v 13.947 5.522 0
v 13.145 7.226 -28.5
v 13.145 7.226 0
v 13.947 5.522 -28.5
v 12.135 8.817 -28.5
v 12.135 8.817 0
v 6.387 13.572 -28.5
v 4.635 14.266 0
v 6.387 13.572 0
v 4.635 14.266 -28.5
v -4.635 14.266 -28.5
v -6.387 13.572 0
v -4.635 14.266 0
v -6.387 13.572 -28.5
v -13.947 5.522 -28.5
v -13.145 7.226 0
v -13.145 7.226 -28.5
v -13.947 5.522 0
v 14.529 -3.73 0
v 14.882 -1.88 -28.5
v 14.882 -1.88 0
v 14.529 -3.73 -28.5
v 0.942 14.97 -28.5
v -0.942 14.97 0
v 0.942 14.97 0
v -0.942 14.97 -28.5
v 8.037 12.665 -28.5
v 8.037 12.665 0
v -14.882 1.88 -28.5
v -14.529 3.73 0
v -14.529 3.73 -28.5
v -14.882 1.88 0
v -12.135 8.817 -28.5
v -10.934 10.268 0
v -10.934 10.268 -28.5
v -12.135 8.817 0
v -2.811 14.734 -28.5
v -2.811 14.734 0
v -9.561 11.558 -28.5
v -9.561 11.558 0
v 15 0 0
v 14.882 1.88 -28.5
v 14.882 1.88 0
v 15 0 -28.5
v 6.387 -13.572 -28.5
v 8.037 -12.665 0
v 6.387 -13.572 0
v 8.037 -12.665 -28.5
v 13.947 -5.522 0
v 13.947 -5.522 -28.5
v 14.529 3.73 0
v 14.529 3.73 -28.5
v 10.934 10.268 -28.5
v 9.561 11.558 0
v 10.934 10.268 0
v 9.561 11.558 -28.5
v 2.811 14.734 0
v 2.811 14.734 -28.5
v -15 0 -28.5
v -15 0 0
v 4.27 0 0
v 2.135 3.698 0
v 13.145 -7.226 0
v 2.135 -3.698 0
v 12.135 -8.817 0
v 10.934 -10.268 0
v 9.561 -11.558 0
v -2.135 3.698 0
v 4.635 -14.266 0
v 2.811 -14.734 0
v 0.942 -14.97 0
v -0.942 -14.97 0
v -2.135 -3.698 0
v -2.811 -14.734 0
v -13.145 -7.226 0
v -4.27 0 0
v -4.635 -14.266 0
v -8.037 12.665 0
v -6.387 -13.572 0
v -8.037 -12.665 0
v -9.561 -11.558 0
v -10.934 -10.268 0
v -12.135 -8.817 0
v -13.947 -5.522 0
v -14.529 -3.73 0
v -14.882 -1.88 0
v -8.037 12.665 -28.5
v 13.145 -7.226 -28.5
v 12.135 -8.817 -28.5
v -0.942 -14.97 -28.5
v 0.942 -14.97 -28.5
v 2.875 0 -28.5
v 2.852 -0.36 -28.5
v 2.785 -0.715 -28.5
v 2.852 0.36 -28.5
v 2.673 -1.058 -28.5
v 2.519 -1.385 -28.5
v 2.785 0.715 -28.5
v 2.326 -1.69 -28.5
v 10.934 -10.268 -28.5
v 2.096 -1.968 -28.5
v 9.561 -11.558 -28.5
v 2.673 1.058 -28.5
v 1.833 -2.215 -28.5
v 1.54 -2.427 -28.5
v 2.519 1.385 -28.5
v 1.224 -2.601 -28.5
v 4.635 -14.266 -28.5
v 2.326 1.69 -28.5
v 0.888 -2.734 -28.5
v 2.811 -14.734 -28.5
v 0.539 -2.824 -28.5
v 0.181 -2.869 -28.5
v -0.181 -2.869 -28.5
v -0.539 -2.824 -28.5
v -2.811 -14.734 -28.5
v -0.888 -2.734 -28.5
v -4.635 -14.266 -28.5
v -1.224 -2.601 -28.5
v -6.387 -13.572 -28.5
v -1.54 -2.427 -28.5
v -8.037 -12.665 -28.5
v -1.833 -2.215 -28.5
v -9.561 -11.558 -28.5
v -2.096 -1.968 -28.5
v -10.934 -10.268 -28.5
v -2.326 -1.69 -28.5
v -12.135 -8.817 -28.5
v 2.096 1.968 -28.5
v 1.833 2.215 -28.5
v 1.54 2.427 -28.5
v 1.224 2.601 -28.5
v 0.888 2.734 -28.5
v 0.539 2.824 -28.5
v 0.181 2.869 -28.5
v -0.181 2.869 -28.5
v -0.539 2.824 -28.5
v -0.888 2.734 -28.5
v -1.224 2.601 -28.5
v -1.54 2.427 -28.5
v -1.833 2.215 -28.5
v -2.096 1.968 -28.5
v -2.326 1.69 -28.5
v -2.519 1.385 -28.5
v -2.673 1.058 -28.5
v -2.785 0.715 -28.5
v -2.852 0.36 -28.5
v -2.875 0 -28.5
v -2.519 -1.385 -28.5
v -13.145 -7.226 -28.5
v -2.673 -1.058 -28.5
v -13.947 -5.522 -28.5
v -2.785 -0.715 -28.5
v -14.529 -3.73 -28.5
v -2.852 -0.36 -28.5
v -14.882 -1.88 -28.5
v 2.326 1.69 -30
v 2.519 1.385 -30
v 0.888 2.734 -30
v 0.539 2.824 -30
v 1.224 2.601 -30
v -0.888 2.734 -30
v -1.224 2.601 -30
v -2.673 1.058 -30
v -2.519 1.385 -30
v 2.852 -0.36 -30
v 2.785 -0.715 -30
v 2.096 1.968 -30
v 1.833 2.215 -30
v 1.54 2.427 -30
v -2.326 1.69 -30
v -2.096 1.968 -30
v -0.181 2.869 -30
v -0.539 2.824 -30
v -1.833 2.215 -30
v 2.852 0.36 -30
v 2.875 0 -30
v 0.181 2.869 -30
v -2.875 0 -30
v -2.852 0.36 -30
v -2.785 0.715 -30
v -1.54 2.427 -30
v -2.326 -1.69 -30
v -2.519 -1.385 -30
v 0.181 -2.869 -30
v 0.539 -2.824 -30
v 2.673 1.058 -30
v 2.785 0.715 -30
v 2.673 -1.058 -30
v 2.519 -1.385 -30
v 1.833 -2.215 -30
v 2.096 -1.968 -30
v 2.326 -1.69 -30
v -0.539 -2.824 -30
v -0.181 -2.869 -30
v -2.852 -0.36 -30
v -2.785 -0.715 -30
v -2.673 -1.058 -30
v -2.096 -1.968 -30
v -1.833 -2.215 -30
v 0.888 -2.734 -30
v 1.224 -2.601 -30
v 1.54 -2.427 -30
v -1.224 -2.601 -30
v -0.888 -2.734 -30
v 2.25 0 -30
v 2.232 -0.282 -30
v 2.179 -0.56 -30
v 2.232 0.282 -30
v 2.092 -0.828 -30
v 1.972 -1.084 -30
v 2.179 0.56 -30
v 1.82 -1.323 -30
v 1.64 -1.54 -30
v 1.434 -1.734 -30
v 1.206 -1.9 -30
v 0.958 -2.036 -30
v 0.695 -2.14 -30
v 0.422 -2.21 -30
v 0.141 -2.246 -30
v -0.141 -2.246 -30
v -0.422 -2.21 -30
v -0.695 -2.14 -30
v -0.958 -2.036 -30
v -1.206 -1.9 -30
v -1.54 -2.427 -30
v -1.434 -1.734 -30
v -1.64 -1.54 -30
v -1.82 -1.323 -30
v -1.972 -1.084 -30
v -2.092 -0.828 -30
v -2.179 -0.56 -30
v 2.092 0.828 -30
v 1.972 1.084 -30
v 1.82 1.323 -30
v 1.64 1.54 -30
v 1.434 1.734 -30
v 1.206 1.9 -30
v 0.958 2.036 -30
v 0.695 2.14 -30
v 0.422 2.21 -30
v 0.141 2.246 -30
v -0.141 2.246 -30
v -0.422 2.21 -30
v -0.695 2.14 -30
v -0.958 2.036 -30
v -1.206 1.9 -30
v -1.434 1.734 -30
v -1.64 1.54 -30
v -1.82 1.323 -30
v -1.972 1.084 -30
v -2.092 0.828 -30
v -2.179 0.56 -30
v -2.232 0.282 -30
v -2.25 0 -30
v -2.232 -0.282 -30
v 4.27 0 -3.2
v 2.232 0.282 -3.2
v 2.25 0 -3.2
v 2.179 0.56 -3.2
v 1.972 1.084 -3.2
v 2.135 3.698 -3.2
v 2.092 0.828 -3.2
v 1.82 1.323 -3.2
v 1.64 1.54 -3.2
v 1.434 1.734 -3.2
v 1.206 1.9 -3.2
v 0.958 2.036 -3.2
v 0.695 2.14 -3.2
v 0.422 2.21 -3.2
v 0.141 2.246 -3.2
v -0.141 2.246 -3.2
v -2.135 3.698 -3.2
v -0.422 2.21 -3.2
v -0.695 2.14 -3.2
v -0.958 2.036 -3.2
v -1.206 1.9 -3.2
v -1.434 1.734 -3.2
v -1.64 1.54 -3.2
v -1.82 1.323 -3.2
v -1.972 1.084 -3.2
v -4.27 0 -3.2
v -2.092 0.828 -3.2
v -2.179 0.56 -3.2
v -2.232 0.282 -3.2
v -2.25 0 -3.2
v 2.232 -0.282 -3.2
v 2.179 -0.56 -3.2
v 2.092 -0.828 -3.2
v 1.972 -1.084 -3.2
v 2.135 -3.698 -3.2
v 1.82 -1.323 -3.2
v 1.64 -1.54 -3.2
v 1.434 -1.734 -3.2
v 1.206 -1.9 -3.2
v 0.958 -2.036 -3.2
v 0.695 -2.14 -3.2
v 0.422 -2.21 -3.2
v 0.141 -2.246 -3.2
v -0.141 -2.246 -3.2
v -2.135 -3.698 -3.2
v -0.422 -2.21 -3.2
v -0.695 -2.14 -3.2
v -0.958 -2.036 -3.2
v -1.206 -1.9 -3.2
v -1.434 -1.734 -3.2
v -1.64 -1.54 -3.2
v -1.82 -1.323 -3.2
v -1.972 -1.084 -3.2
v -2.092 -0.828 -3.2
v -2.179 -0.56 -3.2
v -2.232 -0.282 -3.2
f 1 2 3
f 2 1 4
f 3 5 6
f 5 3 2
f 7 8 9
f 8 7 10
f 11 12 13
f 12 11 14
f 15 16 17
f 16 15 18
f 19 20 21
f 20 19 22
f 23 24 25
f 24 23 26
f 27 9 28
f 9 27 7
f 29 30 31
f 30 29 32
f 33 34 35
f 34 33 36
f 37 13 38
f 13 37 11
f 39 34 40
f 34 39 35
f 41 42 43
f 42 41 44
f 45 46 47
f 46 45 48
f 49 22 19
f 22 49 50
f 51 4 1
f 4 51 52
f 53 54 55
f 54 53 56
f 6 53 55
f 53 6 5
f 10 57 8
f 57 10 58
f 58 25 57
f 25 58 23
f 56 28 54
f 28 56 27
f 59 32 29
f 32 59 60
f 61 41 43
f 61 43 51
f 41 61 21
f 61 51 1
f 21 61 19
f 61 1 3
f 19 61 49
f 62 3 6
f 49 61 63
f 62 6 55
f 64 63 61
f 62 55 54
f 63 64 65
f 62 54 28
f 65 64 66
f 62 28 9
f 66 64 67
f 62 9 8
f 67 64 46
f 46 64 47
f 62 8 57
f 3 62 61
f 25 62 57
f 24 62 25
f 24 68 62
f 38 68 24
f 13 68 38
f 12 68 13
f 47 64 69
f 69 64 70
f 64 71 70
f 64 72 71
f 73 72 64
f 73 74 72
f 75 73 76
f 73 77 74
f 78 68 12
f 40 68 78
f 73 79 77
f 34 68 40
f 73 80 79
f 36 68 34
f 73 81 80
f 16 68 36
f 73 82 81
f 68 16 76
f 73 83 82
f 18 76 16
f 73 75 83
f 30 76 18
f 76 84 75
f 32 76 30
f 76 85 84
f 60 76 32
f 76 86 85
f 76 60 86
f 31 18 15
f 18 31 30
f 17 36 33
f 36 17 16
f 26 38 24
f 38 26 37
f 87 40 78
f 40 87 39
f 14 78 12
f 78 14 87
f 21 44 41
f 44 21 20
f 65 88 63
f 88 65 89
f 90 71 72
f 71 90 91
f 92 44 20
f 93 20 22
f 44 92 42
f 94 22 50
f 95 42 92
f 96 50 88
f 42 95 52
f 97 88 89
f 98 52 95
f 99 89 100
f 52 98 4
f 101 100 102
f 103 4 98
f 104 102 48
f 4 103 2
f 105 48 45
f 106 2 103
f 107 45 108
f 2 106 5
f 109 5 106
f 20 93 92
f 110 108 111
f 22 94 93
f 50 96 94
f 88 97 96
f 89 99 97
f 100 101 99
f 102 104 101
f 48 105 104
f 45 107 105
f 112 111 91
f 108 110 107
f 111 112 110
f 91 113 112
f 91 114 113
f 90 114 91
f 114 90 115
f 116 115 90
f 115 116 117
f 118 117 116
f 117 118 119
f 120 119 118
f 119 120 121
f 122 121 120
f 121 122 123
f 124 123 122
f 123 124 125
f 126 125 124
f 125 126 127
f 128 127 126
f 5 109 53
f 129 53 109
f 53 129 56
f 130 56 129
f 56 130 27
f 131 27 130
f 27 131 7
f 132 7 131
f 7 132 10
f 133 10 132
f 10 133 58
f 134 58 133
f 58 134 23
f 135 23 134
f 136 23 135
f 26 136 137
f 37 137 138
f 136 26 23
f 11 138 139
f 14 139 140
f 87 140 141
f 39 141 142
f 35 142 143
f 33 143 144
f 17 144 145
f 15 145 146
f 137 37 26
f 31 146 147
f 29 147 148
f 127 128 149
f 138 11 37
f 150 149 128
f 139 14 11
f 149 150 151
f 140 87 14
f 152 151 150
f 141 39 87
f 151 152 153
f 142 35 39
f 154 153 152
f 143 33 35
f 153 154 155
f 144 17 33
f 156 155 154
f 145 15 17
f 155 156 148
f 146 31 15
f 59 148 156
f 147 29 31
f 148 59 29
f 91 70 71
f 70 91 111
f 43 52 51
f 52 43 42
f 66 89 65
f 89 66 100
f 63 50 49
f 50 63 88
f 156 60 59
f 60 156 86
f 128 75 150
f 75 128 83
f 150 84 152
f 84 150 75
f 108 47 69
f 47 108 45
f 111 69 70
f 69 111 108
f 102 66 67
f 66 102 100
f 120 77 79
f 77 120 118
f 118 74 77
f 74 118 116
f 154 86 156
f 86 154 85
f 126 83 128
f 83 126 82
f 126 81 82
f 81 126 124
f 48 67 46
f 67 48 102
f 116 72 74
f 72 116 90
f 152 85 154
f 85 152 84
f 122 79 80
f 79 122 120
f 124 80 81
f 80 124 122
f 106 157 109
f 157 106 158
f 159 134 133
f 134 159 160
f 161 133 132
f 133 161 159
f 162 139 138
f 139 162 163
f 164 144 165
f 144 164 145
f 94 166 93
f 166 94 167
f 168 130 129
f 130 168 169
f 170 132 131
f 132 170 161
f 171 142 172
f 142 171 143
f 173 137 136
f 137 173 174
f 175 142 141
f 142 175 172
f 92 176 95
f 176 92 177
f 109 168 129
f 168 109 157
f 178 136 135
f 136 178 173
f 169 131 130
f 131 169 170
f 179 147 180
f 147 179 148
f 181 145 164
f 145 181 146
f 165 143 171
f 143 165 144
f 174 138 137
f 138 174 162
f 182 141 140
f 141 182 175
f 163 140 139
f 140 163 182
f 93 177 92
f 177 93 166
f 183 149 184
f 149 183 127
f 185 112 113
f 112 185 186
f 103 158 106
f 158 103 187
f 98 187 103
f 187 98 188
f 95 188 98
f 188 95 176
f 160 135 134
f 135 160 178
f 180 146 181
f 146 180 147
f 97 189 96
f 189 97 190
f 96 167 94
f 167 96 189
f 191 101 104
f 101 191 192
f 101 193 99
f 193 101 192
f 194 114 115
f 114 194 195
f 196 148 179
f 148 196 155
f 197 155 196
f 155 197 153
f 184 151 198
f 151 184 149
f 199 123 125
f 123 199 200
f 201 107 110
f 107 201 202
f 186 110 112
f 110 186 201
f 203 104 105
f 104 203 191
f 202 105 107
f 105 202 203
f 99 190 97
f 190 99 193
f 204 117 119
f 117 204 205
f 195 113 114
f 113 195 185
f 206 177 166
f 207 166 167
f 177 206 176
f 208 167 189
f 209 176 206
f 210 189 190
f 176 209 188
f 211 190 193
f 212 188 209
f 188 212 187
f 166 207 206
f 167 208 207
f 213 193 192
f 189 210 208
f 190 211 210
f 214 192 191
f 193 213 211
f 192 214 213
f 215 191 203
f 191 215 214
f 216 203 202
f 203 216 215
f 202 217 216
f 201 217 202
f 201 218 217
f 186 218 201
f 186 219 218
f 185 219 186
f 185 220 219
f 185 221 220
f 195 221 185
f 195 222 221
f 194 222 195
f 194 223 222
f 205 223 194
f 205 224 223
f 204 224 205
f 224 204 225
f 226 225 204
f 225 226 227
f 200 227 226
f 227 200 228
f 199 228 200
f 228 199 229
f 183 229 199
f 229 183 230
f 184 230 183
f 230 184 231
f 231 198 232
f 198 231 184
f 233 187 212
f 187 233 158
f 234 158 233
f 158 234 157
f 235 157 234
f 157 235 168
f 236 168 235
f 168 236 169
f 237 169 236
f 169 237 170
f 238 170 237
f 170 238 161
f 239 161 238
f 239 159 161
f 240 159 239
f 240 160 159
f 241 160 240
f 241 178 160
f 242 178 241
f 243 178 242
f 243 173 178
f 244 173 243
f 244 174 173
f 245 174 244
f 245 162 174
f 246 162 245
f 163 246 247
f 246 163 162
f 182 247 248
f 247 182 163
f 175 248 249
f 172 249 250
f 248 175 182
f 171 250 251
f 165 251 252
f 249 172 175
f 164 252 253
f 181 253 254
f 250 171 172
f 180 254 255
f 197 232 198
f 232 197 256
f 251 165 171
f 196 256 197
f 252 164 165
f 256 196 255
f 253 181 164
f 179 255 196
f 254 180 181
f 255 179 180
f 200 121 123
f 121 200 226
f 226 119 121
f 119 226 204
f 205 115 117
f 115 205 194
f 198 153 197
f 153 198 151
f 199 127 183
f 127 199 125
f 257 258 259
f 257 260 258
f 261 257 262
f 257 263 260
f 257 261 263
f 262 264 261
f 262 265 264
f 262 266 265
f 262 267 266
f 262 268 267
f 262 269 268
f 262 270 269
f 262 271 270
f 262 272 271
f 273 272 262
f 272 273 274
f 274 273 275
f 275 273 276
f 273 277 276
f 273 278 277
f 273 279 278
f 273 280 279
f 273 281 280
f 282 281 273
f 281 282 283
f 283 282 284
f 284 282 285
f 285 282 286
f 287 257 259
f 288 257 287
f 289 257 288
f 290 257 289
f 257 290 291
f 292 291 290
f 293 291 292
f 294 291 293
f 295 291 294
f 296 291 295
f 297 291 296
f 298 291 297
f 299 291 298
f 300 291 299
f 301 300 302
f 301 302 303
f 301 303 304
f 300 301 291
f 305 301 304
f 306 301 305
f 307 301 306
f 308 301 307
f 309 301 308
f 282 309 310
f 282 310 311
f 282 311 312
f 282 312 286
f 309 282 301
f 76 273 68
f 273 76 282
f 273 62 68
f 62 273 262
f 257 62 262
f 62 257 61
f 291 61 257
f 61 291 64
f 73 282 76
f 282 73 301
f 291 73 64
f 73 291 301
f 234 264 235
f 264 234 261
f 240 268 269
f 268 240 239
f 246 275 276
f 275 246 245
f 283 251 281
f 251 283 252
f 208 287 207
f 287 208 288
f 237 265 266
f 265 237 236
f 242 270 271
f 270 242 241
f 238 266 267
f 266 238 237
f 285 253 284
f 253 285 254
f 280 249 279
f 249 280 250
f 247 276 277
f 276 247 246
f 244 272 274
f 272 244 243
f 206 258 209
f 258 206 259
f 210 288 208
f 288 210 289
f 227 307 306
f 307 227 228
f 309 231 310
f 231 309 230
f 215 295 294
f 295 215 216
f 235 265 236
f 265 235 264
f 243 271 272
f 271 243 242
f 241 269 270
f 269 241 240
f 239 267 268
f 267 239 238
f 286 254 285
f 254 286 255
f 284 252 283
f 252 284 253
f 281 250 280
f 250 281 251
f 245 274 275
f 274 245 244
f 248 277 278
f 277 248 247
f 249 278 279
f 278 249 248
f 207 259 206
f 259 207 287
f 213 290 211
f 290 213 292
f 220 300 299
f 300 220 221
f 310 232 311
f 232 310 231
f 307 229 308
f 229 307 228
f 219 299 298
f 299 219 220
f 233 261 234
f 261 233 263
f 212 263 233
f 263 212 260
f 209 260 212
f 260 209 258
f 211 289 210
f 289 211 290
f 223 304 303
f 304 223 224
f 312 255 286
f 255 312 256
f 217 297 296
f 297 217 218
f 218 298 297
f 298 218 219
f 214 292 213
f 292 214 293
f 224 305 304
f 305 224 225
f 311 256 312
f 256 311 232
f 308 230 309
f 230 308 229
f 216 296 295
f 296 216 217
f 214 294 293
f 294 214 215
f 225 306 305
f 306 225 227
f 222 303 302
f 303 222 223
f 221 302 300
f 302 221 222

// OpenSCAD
$fn = 50;

difference() {
	union() {
		translate(v = [0, 0, -28.5]) {
			cylinder(h = 28.5, r = 15.0);
		}
		#translate(v = [0, 0, -30.0]) {
			cylinder(h = 30, r = 2.875);
		}
	}
	union() {
		translate(v = [0, 0, 0]) {
			rotate(a = [0, 0, 0]) {
				difference() {
					union() {
						translate(v = [0, 0, -3.2]) {
							linear_extrude(height = 3.2) {
								polygon(points = [[4.2698, 0.0], [2.1349000000000005, 3.697755269078796], [-2.134899999999999, 3.6977552690787965], [-4.2698, 5.228996902999369e-16], [-2.134900000000002, -3.6977552690787956], [2.1348999999999974, -3.697755269078798]]);
							}
						}
					}
					union();
				}
			}
		}
		#translate(v = [0, 0, -100.0]) {
			cylinder(h = 200, r = 2.25);
		}
	}
}
